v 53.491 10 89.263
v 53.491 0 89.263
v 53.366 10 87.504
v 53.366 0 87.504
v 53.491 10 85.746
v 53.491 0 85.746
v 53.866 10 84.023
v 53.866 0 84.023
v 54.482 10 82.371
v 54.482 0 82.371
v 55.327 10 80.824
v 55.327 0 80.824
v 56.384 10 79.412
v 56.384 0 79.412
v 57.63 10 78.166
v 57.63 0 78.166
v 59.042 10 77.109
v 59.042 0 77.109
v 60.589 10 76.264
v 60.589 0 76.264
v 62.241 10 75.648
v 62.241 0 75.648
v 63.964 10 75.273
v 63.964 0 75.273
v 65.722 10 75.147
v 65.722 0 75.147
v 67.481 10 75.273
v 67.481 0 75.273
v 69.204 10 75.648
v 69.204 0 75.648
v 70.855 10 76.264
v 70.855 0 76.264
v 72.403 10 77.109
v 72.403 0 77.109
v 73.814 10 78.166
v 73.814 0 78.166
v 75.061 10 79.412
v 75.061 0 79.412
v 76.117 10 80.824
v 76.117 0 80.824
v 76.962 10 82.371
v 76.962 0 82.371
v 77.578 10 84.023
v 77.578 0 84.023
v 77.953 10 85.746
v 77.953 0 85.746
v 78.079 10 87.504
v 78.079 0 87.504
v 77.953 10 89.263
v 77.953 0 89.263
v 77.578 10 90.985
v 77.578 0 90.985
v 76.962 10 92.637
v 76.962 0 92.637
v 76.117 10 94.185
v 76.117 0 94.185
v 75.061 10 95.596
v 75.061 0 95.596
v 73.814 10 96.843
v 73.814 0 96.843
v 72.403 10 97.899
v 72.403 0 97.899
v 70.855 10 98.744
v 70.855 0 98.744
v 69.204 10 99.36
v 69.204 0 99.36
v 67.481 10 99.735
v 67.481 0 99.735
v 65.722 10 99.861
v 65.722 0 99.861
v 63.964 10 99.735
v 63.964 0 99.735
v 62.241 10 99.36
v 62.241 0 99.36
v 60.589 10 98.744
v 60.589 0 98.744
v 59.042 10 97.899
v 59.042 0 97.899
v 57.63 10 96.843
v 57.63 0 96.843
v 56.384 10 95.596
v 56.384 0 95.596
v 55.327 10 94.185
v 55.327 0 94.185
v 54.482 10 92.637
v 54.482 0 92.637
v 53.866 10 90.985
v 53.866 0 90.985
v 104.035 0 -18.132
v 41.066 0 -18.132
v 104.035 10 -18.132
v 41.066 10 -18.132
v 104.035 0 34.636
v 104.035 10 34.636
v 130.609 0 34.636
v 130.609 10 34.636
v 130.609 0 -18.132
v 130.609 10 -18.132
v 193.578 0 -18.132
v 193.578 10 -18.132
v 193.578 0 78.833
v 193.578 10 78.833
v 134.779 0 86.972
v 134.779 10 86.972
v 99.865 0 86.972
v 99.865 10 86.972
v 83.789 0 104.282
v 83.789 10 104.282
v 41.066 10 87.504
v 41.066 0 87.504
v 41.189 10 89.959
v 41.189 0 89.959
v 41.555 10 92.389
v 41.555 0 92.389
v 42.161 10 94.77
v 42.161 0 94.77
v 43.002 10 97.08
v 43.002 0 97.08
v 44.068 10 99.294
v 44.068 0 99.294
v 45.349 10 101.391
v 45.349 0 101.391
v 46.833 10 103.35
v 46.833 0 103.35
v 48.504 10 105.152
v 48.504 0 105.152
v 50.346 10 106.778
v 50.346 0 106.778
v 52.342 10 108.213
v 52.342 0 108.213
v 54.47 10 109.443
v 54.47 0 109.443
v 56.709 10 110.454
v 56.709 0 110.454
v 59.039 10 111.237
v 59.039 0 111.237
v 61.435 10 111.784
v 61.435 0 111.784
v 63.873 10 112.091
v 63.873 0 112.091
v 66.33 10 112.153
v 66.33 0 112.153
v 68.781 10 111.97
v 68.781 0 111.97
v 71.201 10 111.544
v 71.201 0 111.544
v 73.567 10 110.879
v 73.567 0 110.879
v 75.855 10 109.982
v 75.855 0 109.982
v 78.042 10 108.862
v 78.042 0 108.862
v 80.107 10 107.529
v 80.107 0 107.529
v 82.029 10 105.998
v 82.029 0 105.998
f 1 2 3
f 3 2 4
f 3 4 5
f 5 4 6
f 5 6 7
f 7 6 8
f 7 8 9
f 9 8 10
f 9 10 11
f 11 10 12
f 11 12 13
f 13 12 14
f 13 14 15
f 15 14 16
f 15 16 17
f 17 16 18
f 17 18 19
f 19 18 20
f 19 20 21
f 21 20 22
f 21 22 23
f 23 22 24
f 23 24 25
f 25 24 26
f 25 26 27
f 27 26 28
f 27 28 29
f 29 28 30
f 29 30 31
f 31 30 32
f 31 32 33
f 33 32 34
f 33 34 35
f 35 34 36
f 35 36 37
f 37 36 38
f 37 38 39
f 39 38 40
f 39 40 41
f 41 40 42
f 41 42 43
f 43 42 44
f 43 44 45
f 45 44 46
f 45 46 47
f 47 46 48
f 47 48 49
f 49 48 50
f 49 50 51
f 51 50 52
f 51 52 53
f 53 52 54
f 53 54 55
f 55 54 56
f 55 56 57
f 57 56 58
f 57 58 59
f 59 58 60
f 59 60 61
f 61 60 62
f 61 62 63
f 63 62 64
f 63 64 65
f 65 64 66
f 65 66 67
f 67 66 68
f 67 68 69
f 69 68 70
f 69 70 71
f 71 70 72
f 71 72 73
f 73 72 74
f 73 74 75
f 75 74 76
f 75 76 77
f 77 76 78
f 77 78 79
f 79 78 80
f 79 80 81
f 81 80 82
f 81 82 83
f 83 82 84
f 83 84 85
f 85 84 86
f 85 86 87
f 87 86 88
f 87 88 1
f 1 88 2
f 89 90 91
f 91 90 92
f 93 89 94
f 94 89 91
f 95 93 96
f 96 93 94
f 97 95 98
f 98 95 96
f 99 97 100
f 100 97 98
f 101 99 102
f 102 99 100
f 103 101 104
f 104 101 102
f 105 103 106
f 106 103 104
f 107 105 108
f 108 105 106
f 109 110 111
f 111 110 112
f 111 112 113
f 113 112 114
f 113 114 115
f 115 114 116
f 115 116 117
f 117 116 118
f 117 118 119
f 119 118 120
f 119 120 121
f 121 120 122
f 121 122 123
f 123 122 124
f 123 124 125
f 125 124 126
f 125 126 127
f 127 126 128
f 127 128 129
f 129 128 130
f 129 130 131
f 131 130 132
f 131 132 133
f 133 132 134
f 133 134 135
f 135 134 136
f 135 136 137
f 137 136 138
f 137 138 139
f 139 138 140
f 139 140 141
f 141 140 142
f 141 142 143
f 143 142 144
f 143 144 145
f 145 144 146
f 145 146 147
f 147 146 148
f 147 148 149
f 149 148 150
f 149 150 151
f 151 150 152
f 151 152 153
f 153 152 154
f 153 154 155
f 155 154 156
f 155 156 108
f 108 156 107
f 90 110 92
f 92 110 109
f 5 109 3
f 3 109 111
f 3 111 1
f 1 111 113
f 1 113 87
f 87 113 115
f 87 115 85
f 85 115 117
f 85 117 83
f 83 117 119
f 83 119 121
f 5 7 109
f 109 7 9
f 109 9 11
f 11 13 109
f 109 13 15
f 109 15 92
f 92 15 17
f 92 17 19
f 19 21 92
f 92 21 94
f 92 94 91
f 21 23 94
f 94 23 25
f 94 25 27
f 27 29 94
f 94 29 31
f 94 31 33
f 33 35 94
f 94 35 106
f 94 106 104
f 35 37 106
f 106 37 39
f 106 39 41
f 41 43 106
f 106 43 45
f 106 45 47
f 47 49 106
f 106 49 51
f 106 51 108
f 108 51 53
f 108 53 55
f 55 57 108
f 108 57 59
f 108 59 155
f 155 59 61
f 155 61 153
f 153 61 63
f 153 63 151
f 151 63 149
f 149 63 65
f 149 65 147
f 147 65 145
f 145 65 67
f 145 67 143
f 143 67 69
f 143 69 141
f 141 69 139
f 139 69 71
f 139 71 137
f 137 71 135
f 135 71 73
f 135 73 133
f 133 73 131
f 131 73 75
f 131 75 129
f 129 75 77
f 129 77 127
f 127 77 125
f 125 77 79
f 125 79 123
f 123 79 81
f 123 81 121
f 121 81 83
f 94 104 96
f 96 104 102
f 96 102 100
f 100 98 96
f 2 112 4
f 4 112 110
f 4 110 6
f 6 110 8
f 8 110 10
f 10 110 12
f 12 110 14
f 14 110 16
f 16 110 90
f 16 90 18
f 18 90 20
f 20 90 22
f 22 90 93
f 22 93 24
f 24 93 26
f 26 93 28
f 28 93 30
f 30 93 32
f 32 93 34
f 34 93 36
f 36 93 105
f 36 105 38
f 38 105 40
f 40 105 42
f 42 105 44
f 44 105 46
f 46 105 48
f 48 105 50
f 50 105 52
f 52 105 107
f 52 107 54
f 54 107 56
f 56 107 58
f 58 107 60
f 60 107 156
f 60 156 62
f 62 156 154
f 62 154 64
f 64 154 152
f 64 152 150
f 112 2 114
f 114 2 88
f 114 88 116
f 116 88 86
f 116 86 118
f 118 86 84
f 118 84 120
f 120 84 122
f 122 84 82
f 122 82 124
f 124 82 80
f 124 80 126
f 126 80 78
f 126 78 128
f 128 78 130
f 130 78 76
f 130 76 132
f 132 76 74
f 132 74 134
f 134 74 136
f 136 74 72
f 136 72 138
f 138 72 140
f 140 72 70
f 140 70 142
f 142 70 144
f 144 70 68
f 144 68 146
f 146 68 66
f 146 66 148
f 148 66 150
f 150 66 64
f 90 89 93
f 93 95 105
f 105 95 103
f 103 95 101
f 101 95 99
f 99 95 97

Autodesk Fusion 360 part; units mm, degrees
sketch "Constraints Demo" plane through (0, 0, 0) normal (0, 1, 0) x (1, 0, 0)
  line L0 (41.0664, 18.1324) -> (104.0349, 18.1324)
  line L1 (104.0349, 18.1324) -> (104.0349, -34.6359)
  line L2 (104.0349, -34.6359) -> (130.6094, -34.6359)
  line L3 (130.6094, -34.6359) -> (130.6094, 18.1324)
  line L4 (130.6094, 18.1324) -> (193.5779, 18.1324)
  line L5 (193.5779, 18.1324) -> (193.5779, -78.8329)
  line L6 (193.5779, -78.8329) -> (134.7794, -86.972)
  line L7 (134.7794, -86.972) -> (99.8649, -86.972)
  line L8 (99.8649, -86.972) -> (83.789, -104.2824)
  line L9 (41.0664, 18.1324) -> (41.0664, -87.5042)
  arc A0 (41.0664, -87.5042) -> (83.789, -104.2824) centre (65.7223, -87.5042) ccw
  circle A1 centre (65.7223, -87.5042) radius 12.3567
  line L10 (117.3222, -86.972) -> (117.3222, -34.6359)
  line L11 (250, -100) -> (250, -35)
  spline S0 degree 5 poles (250, -35) (250, -32.6028) (250, -27.8084) (250.0776, -20.8345) (250.5826, -12.5726) (252.2639, -4.5288) (255.2107, 1.2852) (259.5207, 5.2526) (265.2004, 7.8511) (272.1693, 9.4403) (280.3152, 10.2655) (287.6902, 10.4323) (293.6726, 10.3106) (297.858, 10.1215) (300, 10) knots 0 0 0 0 0 0 0.1 0.2 0.3 0.4 0.5 0.6 0.7 0.8 0.9 1 1 1 1 1 1
  point P0 (260, 5)
extrude "Extrude1" add sketch "Constraints Demo" along normal blind 10
